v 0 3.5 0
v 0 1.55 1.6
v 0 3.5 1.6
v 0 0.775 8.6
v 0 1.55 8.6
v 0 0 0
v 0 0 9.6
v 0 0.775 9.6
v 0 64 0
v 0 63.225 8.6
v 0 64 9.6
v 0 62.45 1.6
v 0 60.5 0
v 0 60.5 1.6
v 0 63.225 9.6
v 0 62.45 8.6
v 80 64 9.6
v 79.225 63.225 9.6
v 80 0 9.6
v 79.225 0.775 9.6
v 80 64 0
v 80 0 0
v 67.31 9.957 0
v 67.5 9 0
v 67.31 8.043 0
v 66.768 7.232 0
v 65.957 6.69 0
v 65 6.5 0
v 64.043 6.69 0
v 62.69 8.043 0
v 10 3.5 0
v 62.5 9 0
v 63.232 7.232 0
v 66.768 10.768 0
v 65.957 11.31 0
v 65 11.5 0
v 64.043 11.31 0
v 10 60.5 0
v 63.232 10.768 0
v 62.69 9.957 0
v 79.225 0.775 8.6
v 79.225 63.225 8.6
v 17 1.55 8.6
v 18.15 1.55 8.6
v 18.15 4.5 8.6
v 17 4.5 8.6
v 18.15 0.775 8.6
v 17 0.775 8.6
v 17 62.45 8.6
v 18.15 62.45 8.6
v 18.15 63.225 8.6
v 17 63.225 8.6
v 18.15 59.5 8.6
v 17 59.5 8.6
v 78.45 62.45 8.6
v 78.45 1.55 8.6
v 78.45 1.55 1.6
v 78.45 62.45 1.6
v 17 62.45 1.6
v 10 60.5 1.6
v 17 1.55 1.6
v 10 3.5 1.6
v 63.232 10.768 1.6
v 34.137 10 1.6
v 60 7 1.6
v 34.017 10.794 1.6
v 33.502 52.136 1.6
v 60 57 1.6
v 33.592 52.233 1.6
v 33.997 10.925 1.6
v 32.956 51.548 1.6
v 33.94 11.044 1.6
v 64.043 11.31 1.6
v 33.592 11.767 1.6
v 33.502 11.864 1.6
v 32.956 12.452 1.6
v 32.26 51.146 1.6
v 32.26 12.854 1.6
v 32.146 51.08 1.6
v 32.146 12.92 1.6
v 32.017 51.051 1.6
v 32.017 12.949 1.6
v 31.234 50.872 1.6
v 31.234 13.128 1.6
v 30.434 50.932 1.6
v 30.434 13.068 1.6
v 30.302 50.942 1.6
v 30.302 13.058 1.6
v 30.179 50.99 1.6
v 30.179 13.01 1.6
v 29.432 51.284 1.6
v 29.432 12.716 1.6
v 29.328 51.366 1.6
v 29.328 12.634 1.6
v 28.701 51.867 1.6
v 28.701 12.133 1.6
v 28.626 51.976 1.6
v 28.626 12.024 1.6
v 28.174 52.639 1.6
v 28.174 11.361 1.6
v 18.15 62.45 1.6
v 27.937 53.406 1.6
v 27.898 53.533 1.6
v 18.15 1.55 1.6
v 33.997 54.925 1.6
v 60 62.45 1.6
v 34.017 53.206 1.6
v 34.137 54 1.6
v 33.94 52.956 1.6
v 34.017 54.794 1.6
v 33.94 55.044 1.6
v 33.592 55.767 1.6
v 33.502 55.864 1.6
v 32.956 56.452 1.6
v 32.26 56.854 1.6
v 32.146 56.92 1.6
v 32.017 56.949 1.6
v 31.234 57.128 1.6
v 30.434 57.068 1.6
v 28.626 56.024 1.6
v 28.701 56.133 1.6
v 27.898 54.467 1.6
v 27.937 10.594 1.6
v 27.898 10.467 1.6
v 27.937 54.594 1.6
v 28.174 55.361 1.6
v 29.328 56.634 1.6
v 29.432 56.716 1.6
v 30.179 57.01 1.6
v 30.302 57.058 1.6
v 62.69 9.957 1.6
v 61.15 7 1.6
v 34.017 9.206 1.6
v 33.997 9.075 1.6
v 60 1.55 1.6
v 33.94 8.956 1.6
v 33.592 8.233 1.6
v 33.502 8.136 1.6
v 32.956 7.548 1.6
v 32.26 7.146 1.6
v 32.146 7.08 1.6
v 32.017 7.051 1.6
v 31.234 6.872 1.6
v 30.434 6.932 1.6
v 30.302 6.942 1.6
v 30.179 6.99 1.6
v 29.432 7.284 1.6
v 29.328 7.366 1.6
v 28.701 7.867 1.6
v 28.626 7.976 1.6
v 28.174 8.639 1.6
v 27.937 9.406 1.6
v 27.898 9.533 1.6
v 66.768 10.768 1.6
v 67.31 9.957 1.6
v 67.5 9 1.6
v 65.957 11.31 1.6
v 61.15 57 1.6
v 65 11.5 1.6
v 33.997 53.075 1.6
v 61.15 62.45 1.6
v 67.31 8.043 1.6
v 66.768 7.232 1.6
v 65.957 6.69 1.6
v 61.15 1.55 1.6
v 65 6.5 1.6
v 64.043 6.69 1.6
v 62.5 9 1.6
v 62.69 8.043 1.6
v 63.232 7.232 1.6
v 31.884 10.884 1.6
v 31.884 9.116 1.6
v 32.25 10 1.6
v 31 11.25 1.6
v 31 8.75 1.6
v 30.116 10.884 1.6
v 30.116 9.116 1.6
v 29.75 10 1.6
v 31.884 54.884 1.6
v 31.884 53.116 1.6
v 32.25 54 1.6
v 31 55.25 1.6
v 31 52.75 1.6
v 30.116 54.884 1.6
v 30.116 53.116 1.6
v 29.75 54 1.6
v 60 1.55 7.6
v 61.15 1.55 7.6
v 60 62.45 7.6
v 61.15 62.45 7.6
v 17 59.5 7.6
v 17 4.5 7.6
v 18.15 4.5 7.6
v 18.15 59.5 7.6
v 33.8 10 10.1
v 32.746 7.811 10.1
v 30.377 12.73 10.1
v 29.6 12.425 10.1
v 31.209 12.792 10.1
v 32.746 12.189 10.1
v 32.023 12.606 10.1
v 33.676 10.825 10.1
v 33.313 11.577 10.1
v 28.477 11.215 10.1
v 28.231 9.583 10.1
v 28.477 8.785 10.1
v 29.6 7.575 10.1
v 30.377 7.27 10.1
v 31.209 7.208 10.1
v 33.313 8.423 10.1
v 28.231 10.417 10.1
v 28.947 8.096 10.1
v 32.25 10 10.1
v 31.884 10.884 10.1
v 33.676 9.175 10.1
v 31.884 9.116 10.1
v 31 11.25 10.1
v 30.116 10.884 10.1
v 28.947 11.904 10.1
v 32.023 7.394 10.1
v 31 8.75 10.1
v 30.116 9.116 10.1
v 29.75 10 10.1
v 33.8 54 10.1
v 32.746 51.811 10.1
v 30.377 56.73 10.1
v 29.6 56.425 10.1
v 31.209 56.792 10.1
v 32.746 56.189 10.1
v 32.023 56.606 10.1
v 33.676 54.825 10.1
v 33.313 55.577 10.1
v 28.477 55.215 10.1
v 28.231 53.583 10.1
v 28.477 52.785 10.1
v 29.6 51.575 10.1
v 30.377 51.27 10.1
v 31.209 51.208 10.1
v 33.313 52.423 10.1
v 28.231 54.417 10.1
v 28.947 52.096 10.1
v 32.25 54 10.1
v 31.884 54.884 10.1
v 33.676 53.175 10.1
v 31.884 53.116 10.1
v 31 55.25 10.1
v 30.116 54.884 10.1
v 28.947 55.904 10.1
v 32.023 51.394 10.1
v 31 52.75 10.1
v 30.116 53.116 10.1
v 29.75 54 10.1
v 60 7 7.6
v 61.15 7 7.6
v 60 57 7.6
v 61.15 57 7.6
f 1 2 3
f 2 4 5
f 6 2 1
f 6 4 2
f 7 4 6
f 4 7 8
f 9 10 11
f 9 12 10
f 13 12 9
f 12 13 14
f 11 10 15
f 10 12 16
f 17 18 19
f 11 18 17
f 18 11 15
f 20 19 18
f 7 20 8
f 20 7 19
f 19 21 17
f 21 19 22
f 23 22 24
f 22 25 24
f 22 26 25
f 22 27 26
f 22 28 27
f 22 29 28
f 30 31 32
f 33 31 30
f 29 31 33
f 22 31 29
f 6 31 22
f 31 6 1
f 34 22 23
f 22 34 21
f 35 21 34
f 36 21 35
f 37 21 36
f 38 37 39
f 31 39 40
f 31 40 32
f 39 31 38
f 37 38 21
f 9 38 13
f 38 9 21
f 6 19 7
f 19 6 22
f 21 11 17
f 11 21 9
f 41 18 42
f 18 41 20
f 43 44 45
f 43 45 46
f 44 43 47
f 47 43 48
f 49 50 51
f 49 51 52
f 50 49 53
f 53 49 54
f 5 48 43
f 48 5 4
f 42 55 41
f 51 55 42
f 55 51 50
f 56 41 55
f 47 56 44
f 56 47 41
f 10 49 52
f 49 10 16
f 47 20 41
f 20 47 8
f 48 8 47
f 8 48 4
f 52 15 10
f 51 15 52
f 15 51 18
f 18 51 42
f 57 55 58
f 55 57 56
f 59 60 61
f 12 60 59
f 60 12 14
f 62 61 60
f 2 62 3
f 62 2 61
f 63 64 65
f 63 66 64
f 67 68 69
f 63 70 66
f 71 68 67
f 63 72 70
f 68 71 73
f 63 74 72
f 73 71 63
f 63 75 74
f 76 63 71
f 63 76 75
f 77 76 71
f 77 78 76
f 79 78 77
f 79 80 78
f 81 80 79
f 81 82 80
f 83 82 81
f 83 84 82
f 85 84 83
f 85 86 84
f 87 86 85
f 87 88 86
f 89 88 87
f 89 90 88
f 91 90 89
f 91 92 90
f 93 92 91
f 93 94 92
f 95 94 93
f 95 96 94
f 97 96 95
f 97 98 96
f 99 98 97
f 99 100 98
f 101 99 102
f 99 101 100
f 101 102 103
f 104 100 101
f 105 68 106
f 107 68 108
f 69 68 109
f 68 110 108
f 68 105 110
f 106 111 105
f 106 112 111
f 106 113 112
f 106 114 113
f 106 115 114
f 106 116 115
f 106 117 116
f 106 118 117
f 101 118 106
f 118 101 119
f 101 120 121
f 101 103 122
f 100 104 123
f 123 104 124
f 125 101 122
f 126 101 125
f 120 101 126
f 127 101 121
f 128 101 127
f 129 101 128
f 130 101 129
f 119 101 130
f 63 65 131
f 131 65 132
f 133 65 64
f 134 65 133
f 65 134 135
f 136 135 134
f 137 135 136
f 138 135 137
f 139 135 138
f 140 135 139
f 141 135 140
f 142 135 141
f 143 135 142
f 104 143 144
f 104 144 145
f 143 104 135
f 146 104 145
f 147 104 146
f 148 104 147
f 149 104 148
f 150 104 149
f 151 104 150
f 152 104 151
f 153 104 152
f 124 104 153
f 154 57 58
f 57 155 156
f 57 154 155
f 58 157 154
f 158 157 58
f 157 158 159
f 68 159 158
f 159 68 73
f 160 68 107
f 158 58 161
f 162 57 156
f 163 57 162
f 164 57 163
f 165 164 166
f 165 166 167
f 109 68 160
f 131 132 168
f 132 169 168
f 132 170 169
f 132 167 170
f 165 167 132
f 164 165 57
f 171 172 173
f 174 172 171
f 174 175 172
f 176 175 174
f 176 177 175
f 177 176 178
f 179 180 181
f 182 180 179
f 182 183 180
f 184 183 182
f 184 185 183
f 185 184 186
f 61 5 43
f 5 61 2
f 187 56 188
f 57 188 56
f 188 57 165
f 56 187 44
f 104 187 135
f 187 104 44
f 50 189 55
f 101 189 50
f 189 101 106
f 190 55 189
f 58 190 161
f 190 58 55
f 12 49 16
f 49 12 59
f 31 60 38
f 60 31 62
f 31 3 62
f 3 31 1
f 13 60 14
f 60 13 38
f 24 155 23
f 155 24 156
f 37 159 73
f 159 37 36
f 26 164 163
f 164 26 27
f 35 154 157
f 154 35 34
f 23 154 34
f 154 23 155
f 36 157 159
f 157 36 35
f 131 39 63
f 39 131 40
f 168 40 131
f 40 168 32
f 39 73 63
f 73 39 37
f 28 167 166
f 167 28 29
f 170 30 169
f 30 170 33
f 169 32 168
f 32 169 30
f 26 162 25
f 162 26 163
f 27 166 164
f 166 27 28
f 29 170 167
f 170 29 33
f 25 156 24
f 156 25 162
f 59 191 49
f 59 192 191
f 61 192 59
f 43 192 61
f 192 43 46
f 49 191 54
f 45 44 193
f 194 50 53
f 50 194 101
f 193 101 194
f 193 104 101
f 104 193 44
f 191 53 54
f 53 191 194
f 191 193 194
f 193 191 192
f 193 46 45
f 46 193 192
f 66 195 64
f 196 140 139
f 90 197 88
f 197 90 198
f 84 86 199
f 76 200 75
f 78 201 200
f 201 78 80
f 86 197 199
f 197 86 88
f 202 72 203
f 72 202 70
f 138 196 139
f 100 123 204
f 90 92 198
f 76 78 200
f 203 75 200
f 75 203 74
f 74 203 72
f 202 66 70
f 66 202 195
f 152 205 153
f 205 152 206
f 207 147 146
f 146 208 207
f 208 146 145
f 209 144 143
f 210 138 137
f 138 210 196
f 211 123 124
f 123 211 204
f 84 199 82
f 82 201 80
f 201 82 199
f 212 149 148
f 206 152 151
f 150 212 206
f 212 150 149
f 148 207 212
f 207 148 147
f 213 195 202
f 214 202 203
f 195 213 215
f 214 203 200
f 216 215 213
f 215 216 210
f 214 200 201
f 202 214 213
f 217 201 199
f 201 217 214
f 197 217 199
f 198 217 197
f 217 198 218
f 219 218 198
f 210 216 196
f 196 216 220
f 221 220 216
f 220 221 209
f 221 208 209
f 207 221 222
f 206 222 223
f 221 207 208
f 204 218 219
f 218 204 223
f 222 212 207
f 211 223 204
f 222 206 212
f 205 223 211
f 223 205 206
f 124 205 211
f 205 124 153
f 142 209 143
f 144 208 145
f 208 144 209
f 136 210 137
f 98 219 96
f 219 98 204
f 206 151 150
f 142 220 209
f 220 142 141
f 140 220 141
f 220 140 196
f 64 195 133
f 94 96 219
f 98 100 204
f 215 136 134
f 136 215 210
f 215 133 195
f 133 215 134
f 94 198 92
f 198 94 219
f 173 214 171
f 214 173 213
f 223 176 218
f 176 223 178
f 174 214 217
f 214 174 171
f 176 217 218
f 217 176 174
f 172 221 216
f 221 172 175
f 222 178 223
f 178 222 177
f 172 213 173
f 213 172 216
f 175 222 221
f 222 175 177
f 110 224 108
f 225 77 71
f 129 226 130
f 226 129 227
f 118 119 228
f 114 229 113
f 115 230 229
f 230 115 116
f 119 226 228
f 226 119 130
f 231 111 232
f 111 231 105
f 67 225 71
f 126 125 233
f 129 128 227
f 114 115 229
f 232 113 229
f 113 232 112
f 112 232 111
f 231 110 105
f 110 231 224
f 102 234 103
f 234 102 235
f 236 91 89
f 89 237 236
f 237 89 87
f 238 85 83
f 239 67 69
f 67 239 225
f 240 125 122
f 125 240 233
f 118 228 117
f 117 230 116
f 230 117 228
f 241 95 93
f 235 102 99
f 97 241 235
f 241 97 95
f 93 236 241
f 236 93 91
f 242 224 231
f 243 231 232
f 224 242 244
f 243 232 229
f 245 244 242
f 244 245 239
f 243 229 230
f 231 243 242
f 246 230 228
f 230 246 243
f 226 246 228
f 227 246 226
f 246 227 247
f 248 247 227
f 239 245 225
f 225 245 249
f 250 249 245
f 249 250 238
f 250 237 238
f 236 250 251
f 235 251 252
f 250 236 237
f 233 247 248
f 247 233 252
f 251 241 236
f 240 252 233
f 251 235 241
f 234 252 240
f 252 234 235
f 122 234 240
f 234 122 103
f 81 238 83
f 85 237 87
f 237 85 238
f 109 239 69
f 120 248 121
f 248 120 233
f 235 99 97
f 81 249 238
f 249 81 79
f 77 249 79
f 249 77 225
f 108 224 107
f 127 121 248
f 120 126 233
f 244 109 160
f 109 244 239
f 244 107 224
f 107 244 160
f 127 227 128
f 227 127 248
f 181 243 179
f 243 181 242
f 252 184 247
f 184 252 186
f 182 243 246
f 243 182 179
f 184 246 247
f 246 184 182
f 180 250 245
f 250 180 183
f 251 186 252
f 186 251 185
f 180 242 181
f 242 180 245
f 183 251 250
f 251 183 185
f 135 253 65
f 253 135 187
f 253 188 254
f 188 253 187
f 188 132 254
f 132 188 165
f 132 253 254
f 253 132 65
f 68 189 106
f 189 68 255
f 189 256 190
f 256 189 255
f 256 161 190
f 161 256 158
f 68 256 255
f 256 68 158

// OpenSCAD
/* A8PicoCart shell
   (c) R.Edwards 2023
*/

ridge_width = 0.5;
cart_length=80;
cart_width=65 - (ridge_width*2);
cart_height=9.6;
screw_sep = 44;
front_thickness = 1.6;
sides_thickness = 1.6 - 0.05;
support_thickness = 1.2 - 0.05;
support_height = 7.6;
rim_height = 1;
logo_width = 14.5;
logo_height = 58;

difference() {
    union() {
        difference() {
            // main shell
            cube([cart_length, cart_width, cart_height]);
            // rims
            translate([0, sides_thickness/2, cart_height-rim_height])
                cube([cart_length-sides_thickness/2,
                    cart_width-sides_thickness, rim_height]);
            // make hollow
            translate([0, sides_thickness, front_thickness])
                cube([cart_length-sides_thickness,
                    cart_width-sides_thickness*2,
                    cart_height-front_thickness]);
            // cutout cart port
            translate([0, (cart_width-57)/2, 0])
                cube([10, 57, cart_height]);
            // button
            translate([cart_length-15, 9, 0])
               cylinder(h = front_thickness, r1 = 2.5, r2 = 2.5,  $fs = 1); 
        }    
        // pcb supports
        difference() {
            translate([17, 0, 0])
                cube([support_thickness, cart_width, cart_height-rim_height]);
            translate([17, (cart_width-55)/2, support_height])
                cube([support_thickness, 55, cart_height-support_height]);
        }
        translate([60, 0, 0])
            cube([support_thickness, 7, support_height]);
        translate([60, cart_width-7, 0])
            cube([support_thickness, 7, support_height]);
        // screw holes
        translate([31, (cart_width-screw_sep)/2, 0])
            difference() {
                cylinder(h = support_height + 2.5, r1 = 3.2, r2 = 2.8,  $fs = 1);
                cylinder(h = support_height + 2.5, r1 = 1.25, r2 = 1.25,  $fs = 1);
            }
        translate([31, cart_width-(cart_width-screw_sep)/2, 0])
            difference() {
                cylinder(h = support_height + 2.5, r1 = 3.2, r2 = 2.8,  $fs = 1);
                cylinder(h = support_height + 2.5, r1 = 1.25, r2 = 1.25,  $fs = 1);
            }
    }
}
